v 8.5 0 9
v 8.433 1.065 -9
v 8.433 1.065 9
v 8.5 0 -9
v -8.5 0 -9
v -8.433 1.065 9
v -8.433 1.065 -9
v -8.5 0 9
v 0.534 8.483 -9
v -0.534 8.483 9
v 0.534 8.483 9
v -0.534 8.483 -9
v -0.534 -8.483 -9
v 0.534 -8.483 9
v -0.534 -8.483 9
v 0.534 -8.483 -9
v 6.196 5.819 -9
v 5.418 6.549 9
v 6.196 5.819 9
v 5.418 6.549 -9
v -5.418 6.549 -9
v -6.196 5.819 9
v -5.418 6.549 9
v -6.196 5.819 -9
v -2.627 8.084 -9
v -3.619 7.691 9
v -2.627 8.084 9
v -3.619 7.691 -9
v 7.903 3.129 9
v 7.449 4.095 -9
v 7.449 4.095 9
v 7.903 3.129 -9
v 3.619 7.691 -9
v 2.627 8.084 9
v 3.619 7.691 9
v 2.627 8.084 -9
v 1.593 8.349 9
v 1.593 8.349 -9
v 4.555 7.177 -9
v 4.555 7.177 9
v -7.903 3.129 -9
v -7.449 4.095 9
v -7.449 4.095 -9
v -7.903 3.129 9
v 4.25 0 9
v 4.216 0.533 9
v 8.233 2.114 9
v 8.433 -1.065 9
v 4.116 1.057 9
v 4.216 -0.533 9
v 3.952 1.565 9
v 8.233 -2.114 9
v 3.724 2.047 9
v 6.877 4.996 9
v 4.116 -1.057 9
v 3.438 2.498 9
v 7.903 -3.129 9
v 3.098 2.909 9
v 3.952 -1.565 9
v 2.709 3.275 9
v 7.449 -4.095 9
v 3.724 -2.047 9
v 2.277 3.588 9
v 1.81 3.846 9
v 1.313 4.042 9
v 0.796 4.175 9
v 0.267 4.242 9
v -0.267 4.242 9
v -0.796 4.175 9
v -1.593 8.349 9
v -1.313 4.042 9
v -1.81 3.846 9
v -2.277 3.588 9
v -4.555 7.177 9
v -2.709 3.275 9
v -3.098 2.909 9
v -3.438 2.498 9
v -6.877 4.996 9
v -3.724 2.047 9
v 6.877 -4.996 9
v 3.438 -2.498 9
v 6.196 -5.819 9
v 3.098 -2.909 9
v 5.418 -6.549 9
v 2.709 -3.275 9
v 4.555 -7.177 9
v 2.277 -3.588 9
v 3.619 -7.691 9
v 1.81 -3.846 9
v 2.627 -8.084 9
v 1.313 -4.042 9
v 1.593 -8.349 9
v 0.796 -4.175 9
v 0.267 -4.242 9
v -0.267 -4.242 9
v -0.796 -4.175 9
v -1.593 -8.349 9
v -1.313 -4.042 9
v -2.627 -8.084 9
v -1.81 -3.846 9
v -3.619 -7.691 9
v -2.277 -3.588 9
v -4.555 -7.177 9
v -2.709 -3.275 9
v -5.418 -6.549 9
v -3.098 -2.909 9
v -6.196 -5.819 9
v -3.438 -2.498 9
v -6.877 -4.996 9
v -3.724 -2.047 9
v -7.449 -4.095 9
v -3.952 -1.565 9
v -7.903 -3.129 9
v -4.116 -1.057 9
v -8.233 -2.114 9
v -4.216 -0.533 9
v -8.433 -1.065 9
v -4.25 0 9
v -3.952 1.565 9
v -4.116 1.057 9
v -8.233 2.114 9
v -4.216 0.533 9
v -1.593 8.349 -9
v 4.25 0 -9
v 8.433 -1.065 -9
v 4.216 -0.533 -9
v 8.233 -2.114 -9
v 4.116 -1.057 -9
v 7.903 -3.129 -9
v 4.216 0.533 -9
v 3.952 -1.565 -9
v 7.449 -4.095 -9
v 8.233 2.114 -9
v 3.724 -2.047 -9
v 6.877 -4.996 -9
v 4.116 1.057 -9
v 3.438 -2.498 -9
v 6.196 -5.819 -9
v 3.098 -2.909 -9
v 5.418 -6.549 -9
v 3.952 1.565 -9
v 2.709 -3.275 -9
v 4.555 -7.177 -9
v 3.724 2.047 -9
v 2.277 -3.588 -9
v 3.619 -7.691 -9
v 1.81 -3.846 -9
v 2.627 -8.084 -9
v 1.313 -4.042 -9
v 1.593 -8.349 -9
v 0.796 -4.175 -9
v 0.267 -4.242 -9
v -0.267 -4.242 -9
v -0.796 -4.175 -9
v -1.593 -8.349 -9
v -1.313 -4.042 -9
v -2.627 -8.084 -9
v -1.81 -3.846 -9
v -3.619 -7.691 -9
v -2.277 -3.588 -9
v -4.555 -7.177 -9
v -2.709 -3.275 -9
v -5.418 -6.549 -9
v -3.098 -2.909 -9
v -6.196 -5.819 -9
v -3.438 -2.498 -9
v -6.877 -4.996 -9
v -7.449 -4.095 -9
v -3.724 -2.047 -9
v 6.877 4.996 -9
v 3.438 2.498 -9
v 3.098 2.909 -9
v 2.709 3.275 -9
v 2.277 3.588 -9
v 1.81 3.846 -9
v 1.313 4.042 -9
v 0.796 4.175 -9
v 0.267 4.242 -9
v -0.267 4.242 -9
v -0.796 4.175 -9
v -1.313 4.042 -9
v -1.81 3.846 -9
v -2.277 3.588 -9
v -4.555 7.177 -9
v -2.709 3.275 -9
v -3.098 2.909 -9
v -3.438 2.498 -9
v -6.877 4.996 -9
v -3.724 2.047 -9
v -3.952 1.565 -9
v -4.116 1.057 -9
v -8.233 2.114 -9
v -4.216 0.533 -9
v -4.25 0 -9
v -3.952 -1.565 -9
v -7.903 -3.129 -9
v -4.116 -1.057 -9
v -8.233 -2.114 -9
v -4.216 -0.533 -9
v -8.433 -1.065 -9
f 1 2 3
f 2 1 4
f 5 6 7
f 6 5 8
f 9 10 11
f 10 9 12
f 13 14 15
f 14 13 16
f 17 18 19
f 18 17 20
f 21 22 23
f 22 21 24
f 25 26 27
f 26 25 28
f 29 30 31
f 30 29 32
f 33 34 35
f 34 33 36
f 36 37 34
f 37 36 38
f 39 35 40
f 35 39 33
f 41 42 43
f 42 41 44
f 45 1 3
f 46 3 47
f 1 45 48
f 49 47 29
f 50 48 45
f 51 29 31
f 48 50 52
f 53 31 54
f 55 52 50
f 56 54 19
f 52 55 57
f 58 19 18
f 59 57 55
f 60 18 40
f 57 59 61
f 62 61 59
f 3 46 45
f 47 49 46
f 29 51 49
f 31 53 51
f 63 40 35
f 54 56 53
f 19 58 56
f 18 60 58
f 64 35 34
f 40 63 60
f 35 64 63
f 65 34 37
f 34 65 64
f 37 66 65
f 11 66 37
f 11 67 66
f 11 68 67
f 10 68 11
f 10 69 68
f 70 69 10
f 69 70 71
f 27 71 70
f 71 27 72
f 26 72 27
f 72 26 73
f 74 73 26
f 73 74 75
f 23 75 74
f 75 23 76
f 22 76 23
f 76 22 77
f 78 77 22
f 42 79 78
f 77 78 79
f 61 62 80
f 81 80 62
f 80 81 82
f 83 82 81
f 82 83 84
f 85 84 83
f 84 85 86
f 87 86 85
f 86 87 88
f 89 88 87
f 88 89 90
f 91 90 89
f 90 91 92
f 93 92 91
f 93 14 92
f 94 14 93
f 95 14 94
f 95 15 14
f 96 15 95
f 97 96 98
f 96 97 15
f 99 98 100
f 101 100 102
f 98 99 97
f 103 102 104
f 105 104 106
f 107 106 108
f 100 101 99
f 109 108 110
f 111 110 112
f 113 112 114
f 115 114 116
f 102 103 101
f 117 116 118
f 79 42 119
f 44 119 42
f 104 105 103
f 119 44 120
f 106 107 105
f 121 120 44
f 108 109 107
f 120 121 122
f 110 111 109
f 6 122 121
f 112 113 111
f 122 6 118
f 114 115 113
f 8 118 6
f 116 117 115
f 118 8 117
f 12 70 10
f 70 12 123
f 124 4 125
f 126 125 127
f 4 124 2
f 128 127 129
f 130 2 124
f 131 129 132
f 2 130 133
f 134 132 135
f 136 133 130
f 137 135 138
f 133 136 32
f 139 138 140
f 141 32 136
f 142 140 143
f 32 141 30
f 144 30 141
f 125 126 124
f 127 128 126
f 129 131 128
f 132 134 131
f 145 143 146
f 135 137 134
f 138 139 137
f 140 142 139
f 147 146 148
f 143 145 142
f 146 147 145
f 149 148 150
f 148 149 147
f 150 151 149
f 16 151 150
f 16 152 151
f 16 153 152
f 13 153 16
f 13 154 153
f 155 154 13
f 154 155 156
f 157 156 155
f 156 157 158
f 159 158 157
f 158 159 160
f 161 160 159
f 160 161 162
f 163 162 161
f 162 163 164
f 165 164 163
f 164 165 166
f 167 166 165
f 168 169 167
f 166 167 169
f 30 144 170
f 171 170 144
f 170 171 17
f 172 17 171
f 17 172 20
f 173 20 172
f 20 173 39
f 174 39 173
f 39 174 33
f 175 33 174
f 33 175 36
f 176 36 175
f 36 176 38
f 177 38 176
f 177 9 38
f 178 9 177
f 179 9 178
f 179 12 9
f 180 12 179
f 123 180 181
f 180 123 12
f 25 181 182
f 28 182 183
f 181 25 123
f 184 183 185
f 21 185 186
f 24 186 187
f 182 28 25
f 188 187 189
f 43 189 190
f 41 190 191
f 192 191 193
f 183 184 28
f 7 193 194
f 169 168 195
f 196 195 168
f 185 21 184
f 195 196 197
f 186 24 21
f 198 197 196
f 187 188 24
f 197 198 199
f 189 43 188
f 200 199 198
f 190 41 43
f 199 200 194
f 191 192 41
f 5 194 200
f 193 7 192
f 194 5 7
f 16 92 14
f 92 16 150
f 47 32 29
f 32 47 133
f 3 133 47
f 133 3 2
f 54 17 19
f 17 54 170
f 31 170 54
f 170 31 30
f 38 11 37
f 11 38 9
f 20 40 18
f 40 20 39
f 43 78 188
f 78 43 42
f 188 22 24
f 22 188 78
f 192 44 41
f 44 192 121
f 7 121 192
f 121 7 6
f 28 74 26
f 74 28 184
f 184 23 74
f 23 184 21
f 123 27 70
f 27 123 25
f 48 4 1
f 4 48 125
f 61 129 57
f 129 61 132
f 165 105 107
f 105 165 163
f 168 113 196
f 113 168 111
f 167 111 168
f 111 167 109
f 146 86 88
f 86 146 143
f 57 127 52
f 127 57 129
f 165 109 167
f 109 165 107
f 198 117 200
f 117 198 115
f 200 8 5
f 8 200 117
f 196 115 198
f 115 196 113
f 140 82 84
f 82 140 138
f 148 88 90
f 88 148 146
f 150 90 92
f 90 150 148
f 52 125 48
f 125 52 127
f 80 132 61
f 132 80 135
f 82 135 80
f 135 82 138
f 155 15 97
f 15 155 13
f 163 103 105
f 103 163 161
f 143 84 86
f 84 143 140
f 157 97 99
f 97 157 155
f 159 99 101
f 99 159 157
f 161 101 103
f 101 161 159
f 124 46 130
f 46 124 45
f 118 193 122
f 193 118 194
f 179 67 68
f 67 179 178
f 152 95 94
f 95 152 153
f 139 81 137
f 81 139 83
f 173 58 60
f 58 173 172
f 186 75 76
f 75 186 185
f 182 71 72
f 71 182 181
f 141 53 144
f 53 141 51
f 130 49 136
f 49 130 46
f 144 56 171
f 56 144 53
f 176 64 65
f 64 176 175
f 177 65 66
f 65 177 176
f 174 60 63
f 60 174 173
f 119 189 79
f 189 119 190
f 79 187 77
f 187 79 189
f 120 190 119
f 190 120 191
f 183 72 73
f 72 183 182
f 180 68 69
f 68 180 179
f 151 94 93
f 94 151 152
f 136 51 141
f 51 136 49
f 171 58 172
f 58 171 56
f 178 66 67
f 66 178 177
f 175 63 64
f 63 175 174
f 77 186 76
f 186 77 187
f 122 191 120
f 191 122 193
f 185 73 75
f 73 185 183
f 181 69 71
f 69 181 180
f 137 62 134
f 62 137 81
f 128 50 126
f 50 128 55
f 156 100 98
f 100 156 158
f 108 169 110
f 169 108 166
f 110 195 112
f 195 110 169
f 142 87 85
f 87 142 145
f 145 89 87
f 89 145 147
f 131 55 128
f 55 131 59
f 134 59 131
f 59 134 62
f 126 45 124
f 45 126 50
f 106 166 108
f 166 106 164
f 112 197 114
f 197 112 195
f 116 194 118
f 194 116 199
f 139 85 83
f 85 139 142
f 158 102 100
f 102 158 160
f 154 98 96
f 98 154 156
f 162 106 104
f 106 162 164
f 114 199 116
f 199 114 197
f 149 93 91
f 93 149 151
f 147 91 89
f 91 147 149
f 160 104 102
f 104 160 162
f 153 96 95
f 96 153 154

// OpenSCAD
$fn = 50;


difference() {
	union() {
		translate(v = [0, 0, -9.0000000000]) {
			cylinder(h = 18, r = 8.5000000000);
		}
	}
	union() {
		translate(v = [0, 0, -100.0000000000]) {
			cylinder(h = 200, r = 4.2500000000);
		}
	}
}
